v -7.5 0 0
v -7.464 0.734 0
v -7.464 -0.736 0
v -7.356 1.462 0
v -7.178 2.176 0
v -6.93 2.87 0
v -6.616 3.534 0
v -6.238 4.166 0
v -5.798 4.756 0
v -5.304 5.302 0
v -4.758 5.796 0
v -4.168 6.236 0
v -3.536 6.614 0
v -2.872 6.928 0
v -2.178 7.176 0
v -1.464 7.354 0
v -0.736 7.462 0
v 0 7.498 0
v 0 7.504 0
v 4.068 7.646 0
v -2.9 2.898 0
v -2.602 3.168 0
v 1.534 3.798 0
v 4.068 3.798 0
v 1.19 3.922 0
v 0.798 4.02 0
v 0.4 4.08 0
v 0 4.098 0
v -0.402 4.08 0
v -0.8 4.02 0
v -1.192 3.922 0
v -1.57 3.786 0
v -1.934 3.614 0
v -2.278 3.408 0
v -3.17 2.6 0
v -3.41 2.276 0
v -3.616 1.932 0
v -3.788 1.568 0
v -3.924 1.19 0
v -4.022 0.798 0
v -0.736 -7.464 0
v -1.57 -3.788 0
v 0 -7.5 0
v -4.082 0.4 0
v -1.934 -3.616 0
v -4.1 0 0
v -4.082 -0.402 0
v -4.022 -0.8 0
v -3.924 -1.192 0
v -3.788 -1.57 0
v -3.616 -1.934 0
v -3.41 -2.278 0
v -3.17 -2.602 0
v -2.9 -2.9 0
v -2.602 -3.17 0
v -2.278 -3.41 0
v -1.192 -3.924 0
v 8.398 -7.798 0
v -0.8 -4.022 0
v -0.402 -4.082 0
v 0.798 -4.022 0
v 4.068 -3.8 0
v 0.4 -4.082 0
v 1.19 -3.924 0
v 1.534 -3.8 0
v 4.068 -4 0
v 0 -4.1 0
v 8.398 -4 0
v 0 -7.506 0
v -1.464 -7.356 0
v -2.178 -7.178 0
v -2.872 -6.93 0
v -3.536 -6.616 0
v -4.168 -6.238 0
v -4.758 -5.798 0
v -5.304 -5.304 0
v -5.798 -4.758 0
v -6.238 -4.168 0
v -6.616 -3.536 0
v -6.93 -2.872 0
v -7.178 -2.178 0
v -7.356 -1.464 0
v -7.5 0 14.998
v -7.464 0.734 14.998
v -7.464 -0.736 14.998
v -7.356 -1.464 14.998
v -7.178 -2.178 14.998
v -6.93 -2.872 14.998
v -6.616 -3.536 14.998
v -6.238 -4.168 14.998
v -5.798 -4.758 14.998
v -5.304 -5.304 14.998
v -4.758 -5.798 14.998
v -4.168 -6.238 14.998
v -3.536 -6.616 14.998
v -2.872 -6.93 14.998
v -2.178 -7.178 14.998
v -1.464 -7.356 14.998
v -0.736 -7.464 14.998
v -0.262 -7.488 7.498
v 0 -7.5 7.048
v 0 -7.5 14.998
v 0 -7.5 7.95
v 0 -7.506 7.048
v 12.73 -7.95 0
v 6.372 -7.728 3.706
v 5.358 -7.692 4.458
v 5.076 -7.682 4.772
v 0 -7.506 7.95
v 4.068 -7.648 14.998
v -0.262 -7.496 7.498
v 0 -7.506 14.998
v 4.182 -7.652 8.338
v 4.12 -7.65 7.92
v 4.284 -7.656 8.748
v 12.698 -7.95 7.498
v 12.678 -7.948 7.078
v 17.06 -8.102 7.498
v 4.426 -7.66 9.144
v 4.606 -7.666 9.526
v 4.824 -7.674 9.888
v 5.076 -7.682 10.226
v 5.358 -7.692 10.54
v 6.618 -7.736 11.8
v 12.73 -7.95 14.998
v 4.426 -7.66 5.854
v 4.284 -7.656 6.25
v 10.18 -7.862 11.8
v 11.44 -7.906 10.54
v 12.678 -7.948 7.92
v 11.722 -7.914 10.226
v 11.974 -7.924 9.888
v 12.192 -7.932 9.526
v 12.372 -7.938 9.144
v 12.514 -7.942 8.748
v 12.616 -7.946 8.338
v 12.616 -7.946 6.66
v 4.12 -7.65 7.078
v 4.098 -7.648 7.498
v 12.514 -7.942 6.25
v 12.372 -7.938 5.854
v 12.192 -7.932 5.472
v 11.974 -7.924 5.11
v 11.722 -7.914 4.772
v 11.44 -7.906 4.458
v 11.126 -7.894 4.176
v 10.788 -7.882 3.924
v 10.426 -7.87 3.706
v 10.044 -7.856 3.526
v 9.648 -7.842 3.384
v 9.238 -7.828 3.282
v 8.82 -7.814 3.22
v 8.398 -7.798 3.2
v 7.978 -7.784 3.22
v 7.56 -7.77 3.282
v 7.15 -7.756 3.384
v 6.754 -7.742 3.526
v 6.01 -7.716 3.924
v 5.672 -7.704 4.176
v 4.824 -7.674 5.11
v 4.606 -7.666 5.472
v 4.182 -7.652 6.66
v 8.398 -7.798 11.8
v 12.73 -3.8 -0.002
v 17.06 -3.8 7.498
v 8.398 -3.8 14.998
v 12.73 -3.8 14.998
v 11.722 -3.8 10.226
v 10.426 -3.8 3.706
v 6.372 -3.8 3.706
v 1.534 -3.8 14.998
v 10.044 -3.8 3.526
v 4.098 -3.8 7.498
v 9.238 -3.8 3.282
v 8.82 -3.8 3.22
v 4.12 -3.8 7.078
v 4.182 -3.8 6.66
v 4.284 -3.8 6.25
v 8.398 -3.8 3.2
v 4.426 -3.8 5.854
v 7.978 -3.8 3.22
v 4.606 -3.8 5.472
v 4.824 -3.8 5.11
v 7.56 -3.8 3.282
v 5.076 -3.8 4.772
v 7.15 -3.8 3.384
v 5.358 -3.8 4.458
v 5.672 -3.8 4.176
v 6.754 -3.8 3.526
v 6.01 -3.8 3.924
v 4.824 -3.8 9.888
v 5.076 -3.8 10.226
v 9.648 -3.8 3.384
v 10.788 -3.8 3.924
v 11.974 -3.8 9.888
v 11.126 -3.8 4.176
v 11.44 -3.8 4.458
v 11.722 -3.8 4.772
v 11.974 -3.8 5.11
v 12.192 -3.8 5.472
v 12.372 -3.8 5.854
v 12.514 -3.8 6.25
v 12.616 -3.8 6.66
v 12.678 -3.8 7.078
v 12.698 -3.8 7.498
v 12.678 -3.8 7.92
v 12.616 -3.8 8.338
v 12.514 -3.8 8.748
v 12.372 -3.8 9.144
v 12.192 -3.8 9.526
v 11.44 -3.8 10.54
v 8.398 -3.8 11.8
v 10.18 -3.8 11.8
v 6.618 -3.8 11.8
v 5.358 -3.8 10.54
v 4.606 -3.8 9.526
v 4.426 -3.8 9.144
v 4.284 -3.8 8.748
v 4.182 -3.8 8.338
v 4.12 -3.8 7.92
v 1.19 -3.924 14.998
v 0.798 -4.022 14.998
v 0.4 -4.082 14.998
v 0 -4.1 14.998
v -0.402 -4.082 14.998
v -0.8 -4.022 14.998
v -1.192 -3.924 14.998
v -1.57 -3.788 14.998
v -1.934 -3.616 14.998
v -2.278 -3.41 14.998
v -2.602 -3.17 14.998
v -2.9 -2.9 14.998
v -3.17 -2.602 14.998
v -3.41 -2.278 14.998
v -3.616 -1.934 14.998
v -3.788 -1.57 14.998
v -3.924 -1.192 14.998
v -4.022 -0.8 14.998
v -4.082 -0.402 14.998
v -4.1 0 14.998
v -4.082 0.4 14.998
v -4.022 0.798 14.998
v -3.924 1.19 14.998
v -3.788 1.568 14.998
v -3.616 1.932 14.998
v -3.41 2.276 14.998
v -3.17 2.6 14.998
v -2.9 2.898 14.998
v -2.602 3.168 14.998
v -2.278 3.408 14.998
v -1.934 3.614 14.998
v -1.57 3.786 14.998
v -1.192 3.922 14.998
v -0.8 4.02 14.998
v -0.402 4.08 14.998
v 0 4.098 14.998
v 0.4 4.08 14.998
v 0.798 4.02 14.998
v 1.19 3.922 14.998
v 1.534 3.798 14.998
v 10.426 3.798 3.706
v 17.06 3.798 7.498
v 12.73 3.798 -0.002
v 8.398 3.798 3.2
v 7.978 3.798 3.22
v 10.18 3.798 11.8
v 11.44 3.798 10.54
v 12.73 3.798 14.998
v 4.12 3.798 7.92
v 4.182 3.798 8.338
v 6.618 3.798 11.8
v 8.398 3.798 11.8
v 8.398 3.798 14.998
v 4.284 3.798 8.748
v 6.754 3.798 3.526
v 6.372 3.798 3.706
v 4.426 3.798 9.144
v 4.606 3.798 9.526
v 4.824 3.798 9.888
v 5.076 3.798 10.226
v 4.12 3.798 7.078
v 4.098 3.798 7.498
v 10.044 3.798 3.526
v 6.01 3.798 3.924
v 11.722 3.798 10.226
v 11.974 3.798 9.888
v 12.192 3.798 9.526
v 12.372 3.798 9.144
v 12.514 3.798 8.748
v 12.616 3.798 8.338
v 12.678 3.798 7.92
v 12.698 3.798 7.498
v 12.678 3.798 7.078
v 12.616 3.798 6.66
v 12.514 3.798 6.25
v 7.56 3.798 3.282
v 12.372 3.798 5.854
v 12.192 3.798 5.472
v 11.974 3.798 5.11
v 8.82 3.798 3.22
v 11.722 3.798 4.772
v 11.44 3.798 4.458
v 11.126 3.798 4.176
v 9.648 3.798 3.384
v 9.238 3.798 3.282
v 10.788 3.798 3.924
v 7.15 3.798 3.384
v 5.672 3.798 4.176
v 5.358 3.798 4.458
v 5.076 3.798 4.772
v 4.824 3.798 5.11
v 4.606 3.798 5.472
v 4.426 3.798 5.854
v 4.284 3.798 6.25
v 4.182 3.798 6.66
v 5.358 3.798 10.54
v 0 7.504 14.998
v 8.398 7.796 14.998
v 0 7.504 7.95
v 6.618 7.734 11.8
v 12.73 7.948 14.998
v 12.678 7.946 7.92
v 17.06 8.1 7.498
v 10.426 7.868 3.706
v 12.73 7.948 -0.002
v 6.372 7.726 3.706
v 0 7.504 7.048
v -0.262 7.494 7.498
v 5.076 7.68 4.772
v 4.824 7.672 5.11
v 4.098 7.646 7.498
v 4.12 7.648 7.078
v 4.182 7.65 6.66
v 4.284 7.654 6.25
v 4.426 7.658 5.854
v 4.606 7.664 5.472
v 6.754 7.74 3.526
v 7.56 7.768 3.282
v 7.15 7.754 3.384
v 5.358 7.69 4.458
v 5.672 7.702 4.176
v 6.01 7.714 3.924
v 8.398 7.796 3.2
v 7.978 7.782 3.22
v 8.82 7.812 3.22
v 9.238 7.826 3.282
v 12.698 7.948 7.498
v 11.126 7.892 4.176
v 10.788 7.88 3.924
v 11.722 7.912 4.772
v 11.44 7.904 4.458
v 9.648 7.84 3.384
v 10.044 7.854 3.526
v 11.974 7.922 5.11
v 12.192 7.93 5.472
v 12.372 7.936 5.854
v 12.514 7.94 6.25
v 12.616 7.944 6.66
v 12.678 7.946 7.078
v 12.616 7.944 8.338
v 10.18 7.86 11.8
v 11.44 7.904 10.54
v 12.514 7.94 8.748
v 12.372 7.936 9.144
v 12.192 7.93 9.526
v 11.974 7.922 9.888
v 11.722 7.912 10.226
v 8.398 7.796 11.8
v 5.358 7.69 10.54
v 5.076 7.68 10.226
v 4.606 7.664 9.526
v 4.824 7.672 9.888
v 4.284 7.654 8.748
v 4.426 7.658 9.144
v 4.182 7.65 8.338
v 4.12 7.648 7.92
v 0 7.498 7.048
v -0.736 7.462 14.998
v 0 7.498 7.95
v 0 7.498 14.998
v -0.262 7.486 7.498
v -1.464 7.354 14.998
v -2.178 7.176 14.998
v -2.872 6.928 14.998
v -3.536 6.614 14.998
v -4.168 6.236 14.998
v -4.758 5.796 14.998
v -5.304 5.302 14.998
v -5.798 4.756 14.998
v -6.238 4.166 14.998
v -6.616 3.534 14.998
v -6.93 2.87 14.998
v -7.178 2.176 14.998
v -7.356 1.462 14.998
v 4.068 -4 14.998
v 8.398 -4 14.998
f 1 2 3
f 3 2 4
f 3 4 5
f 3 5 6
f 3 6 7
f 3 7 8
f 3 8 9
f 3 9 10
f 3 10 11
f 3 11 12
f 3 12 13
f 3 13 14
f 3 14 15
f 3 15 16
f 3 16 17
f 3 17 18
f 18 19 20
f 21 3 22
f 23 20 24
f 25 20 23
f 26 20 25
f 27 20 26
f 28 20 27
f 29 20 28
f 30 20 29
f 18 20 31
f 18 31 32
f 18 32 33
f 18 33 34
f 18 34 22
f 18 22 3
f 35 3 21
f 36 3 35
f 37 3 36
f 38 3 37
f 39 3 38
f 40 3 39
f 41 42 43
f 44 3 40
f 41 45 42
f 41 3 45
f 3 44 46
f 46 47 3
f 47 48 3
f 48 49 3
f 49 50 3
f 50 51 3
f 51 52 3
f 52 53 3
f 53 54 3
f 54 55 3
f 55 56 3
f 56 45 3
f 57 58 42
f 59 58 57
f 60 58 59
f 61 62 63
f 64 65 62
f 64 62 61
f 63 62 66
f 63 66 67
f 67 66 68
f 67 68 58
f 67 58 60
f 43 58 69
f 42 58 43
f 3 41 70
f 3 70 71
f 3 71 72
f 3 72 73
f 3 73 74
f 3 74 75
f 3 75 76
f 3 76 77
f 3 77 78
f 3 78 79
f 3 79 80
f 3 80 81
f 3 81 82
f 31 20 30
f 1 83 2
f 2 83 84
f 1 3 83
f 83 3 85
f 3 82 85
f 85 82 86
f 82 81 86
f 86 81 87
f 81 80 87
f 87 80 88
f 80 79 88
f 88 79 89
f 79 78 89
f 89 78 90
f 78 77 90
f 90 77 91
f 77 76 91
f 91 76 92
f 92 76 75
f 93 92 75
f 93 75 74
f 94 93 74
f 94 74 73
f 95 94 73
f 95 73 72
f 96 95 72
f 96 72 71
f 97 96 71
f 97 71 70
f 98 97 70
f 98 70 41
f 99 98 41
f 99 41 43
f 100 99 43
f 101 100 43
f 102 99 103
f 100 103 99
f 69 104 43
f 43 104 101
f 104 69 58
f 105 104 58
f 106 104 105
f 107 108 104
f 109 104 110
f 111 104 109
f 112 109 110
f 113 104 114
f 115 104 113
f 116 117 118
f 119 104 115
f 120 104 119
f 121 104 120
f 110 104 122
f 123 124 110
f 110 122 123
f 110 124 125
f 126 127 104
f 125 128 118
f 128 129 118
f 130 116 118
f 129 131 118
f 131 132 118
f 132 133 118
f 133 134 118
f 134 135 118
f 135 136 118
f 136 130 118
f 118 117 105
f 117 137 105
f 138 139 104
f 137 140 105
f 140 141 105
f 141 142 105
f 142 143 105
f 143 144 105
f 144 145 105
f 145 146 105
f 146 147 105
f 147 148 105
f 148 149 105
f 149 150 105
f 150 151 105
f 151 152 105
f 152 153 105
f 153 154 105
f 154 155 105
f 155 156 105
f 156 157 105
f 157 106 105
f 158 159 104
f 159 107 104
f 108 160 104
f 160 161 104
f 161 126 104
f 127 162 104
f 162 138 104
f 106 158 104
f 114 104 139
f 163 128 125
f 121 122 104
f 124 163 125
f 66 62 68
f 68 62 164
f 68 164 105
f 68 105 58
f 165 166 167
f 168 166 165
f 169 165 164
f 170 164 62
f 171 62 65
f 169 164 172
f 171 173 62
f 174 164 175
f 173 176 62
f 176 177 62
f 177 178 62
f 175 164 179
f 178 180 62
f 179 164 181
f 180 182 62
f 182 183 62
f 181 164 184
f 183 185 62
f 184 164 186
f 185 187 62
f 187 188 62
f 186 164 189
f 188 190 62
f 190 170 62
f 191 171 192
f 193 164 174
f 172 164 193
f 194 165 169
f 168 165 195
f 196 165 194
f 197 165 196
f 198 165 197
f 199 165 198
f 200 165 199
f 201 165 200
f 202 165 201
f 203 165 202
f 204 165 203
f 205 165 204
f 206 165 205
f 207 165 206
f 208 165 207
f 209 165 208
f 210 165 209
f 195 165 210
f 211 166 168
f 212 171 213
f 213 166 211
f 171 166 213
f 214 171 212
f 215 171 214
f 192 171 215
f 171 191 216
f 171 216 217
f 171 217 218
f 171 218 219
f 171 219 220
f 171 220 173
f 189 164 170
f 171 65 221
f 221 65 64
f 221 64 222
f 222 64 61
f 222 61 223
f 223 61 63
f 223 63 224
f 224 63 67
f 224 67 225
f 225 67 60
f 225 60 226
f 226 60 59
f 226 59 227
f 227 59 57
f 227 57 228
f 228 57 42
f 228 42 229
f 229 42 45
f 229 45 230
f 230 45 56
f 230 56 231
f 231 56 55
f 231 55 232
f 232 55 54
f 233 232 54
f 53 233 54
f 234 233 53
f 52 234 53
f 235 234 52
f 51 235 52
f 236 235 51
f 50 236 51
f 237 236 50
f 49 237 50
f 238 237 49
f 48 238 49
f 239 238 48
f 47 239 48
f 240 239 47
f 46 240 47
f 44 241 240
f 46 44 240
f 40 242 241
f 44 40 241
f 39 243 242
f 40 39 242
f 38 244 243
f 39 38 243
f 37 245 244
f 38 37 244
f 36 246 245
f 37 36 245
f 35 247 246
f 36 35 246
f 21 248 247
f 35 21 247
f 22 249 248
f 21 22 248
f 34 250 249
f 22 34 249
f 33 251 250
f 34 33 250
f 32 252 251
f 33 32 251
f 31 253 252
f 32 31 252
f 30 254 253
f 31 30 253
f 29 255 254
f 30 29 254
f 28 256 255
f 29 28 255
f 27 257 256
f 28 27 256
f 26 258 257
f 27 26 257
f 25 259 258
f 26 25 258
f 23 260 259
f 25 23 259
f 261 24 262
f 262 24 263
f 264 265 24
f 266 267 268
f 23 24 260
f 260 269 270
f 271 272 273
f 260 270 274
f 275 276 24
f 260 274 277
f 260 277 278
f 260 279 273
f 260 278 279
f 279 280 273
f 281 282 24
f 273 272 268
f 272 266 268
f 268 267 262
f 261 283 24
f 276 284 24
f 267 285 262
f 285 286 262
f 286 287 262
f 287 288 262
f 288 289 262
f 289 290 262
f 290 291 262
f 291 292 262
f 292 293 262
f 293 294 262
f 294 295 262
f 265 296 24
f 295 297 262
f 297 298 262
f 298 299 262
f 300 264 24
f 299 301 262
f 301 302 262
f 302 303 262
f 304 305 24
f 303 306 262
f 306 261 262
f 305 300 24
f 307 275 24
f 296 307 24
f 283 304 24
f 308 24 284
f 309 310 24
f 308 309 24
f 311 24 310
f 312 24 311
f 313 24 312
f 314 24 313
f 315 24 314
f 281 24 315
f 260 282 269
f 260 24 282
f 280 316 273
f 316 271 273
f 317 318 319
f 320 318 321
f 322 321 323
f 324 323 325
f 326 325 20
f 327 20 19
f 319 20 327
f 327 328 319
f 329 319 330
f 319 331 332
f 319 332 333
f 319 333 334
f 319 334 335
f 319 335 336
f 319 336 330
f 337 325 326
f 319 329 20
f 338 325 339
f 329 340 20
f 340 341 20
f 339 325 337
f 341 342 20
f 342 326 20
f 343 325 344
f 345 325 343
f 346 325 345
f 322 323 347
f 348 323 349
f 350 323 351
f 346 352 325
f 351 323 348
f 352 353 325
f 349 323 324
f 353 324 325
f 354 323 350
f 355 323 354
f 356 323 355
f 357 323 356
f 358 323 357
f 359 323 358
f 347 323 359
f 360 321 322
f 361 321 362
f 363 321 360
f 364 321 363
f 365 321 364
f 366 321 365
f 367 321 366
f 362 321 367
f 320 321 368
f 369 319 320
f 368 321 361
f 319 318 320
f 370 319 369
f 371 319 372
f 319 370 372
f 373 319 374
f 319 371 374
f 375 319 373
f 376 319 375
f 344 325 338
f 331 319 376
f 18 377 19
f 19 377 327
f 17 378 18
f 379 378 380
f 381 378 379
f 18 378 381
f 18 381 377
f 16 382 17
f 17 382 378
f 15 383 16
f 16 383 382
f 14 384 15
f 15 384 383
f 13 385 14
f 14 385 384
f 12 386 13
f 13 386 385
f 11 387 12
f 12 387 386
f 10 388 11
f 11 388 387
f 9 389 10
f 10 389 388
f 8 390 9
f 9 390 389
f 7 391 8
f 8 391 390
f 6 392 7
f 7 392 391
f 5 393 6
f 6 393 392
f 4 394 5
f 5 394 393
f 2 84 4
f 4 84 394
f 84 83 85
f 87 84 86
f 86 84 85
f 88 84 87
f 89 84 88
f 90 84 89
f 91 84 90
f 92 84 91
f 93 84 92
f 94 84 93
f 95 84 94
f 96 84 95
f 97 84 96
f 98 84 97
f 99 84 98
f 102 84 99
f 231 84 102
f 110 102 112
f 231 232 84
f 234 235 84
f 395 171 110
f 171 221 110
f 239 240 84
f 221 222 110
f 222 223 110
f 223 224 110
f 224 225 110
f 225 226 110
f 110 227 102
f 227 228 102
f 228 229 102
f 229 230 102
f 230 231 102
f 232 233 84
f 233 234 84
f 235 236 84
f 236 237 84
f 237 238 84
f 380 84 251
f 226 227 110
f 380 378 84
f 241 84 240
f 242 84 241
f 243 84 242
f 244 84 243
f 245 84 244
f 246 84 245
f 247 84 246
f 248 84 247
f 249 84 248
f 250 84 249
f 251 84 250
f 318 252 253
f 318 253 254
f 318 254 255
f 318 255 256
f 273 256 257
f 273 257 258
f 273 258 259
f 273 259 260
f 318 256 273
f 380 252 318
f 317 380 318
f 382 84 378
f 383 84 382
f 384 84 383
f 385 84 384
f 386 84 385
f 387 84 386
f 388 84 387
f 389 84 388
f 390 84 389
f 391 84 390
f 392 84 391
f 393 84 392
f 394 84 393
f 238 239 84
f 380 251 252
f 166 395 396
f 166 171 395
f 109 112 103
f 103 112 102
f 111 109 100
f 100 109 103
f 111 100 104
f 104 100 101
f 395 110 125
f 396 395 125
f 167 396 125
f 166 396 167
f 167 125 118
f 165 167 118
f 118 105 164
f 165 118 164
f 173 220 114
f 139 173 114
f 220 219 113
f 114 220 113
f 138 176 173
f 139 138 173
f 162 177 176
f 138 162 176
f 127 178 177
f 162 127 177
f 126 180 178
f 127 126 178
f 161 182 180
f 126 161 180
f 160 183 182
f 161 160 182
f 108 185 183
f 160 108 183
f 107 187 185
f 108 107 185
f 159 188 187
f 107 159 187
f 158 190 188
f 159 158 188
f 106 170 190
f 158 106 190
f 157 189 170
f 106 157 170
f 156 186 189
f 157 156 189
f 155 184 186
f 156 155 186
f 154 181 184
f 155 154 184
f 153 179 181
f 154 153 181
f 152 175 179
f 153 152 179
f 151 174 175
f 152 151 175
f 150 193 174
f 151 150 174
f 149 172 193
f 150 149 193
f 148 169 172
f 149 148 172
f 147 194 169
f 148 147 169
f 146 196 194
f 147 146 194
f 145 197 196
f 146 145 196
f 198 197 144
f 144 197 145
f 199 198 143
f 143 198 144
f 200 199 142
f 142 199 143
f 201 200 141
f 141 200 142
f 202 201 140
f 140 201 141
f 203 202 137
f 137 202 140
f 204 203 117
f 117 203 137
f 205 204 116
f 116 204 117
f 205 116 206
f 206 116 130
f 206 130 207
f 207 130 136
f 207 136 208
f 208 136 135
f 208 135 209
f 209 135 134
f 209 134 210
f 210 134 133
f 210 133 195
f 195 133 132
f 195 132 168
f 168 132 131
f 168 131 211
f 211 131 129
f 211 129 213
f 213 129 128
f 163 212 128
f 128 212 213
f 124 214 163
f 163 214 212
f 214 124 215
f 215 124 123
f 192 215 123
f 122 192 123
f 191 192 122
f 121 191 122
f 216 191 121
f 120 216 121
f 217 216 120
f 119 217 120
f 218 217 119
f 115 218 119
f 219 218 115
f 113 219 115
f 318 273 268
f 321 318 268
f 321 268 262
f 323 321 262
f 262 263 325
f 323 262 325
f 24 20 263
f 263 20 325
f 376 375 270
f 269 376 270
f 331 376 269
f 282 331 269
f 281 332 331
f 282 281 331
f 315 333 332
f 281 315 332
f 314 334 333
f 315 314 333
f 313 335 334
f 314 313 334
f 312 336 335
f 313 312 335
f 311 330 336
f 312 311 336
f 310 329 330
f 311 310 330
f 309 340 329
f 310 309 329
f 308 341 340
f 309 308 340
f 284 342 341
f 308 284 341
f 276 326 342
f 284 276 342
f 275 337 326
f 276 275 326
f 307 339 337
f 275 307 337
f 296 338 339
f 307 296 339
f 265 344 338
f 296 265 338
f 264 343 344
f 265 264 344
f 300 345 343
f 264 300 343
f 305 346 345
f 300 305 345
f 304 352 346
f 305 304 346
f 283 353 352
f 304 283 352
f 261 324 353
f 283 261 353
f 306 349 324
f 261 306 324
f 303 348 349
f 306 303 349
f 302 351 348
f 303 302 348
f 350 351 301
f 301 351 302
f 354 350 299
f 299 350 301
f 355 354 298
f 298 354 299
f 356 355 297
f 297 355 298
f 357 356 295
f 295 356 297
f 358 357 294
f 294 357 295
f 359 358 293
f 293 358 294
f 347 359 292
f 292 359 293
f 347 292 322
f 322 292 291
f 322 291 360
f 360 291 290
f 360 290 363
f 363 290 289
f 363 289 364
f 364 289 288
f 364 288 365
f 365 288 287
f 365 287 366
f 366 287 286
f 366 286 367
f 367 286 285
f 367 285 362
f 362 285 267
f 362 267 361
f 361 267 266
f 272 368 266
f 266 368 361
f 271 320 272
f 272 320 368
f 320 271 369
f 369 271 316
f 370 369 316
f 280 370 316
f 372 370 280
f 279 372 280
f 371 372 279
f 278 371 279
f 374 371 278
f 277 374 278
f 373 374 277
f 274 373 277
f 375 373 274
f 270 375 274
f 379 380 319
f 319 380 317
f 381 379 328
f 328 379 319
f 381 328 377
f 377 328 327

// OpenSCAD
wedge_width = 7.6;
m8_diam_tight = 8.2;
m8_diameter = 8.6;
wall_thickness = 3.3;

wedge_outer_angle = 2;

$fn=64;

module teardrop (r=8, h=20) {
    render()
    rotate([-270, 0, 90]) {
        cylinder(r=r, h=h, $fn=64);
        translate([-(r * sqrt(2)) / 2, 0, 0]) cube([r * sqrt(2), r * sqrt(2) / 2, h]);
        difference() {
            rotate([0, 0, 45]) cube([r, r, h]);
            translate([-r, r, -1]) cube([2 * r, r, h + 2]);
        }
    }
}


module barclamp() {
	hole_radius = (m8_diam_tight + m8_diameter) / 4;
	body_radius = hole_radius + wall_thickness;

	difference(){
		union(){
			// rod clamp
			cylinder(r=body_radius, h=body_radius * 2);

			// arms
			translate([0, -body_radius * 1.5, 0]) cube([hole_radius * 2, body_radius * 3, body_radius * 2]);
			// horizontal hole outer
			translate([hole_radius * 2, 0, body_radius]) rotate([90, 0, 0]) cylinder(r=body_radius / cos(180 / 6), h = body_radius * 3, center=true, $fn=6);
		}

		// rod hole - tight!
		#translate([0, 0, -1]) cylinder(r=m8_diam_tight / 2, h=body_radius * 2 + 2);

		// horizontal hole
		#translate([hole_radius * 2, -body_radius * 1.5 - 1, body_radius]) rotate([0, 0, 90]) teardrop(r=m8_diameter / 2, h=body_radius * 3 + 2);

		// wedge
		translate([0, wedge_width / -2, -1]) cube([body_radius * 3, wedge_width, body_radius * 2 + 2]);

		// wedge outer angle
		rotate([0, 0, wedge_outer_angle]) translate([-1, body_radius, -1]) cube([body_radius * 3, body_radius, body_radius * 2 + 2]);
		rotate([0, 0, -wedge_outer_angle]) translate([-1, -2 * body_radius, -1]) cube([body_radius * 3, body_radius, body_radius * 2 + 2]);
	}
}

barclamp();
